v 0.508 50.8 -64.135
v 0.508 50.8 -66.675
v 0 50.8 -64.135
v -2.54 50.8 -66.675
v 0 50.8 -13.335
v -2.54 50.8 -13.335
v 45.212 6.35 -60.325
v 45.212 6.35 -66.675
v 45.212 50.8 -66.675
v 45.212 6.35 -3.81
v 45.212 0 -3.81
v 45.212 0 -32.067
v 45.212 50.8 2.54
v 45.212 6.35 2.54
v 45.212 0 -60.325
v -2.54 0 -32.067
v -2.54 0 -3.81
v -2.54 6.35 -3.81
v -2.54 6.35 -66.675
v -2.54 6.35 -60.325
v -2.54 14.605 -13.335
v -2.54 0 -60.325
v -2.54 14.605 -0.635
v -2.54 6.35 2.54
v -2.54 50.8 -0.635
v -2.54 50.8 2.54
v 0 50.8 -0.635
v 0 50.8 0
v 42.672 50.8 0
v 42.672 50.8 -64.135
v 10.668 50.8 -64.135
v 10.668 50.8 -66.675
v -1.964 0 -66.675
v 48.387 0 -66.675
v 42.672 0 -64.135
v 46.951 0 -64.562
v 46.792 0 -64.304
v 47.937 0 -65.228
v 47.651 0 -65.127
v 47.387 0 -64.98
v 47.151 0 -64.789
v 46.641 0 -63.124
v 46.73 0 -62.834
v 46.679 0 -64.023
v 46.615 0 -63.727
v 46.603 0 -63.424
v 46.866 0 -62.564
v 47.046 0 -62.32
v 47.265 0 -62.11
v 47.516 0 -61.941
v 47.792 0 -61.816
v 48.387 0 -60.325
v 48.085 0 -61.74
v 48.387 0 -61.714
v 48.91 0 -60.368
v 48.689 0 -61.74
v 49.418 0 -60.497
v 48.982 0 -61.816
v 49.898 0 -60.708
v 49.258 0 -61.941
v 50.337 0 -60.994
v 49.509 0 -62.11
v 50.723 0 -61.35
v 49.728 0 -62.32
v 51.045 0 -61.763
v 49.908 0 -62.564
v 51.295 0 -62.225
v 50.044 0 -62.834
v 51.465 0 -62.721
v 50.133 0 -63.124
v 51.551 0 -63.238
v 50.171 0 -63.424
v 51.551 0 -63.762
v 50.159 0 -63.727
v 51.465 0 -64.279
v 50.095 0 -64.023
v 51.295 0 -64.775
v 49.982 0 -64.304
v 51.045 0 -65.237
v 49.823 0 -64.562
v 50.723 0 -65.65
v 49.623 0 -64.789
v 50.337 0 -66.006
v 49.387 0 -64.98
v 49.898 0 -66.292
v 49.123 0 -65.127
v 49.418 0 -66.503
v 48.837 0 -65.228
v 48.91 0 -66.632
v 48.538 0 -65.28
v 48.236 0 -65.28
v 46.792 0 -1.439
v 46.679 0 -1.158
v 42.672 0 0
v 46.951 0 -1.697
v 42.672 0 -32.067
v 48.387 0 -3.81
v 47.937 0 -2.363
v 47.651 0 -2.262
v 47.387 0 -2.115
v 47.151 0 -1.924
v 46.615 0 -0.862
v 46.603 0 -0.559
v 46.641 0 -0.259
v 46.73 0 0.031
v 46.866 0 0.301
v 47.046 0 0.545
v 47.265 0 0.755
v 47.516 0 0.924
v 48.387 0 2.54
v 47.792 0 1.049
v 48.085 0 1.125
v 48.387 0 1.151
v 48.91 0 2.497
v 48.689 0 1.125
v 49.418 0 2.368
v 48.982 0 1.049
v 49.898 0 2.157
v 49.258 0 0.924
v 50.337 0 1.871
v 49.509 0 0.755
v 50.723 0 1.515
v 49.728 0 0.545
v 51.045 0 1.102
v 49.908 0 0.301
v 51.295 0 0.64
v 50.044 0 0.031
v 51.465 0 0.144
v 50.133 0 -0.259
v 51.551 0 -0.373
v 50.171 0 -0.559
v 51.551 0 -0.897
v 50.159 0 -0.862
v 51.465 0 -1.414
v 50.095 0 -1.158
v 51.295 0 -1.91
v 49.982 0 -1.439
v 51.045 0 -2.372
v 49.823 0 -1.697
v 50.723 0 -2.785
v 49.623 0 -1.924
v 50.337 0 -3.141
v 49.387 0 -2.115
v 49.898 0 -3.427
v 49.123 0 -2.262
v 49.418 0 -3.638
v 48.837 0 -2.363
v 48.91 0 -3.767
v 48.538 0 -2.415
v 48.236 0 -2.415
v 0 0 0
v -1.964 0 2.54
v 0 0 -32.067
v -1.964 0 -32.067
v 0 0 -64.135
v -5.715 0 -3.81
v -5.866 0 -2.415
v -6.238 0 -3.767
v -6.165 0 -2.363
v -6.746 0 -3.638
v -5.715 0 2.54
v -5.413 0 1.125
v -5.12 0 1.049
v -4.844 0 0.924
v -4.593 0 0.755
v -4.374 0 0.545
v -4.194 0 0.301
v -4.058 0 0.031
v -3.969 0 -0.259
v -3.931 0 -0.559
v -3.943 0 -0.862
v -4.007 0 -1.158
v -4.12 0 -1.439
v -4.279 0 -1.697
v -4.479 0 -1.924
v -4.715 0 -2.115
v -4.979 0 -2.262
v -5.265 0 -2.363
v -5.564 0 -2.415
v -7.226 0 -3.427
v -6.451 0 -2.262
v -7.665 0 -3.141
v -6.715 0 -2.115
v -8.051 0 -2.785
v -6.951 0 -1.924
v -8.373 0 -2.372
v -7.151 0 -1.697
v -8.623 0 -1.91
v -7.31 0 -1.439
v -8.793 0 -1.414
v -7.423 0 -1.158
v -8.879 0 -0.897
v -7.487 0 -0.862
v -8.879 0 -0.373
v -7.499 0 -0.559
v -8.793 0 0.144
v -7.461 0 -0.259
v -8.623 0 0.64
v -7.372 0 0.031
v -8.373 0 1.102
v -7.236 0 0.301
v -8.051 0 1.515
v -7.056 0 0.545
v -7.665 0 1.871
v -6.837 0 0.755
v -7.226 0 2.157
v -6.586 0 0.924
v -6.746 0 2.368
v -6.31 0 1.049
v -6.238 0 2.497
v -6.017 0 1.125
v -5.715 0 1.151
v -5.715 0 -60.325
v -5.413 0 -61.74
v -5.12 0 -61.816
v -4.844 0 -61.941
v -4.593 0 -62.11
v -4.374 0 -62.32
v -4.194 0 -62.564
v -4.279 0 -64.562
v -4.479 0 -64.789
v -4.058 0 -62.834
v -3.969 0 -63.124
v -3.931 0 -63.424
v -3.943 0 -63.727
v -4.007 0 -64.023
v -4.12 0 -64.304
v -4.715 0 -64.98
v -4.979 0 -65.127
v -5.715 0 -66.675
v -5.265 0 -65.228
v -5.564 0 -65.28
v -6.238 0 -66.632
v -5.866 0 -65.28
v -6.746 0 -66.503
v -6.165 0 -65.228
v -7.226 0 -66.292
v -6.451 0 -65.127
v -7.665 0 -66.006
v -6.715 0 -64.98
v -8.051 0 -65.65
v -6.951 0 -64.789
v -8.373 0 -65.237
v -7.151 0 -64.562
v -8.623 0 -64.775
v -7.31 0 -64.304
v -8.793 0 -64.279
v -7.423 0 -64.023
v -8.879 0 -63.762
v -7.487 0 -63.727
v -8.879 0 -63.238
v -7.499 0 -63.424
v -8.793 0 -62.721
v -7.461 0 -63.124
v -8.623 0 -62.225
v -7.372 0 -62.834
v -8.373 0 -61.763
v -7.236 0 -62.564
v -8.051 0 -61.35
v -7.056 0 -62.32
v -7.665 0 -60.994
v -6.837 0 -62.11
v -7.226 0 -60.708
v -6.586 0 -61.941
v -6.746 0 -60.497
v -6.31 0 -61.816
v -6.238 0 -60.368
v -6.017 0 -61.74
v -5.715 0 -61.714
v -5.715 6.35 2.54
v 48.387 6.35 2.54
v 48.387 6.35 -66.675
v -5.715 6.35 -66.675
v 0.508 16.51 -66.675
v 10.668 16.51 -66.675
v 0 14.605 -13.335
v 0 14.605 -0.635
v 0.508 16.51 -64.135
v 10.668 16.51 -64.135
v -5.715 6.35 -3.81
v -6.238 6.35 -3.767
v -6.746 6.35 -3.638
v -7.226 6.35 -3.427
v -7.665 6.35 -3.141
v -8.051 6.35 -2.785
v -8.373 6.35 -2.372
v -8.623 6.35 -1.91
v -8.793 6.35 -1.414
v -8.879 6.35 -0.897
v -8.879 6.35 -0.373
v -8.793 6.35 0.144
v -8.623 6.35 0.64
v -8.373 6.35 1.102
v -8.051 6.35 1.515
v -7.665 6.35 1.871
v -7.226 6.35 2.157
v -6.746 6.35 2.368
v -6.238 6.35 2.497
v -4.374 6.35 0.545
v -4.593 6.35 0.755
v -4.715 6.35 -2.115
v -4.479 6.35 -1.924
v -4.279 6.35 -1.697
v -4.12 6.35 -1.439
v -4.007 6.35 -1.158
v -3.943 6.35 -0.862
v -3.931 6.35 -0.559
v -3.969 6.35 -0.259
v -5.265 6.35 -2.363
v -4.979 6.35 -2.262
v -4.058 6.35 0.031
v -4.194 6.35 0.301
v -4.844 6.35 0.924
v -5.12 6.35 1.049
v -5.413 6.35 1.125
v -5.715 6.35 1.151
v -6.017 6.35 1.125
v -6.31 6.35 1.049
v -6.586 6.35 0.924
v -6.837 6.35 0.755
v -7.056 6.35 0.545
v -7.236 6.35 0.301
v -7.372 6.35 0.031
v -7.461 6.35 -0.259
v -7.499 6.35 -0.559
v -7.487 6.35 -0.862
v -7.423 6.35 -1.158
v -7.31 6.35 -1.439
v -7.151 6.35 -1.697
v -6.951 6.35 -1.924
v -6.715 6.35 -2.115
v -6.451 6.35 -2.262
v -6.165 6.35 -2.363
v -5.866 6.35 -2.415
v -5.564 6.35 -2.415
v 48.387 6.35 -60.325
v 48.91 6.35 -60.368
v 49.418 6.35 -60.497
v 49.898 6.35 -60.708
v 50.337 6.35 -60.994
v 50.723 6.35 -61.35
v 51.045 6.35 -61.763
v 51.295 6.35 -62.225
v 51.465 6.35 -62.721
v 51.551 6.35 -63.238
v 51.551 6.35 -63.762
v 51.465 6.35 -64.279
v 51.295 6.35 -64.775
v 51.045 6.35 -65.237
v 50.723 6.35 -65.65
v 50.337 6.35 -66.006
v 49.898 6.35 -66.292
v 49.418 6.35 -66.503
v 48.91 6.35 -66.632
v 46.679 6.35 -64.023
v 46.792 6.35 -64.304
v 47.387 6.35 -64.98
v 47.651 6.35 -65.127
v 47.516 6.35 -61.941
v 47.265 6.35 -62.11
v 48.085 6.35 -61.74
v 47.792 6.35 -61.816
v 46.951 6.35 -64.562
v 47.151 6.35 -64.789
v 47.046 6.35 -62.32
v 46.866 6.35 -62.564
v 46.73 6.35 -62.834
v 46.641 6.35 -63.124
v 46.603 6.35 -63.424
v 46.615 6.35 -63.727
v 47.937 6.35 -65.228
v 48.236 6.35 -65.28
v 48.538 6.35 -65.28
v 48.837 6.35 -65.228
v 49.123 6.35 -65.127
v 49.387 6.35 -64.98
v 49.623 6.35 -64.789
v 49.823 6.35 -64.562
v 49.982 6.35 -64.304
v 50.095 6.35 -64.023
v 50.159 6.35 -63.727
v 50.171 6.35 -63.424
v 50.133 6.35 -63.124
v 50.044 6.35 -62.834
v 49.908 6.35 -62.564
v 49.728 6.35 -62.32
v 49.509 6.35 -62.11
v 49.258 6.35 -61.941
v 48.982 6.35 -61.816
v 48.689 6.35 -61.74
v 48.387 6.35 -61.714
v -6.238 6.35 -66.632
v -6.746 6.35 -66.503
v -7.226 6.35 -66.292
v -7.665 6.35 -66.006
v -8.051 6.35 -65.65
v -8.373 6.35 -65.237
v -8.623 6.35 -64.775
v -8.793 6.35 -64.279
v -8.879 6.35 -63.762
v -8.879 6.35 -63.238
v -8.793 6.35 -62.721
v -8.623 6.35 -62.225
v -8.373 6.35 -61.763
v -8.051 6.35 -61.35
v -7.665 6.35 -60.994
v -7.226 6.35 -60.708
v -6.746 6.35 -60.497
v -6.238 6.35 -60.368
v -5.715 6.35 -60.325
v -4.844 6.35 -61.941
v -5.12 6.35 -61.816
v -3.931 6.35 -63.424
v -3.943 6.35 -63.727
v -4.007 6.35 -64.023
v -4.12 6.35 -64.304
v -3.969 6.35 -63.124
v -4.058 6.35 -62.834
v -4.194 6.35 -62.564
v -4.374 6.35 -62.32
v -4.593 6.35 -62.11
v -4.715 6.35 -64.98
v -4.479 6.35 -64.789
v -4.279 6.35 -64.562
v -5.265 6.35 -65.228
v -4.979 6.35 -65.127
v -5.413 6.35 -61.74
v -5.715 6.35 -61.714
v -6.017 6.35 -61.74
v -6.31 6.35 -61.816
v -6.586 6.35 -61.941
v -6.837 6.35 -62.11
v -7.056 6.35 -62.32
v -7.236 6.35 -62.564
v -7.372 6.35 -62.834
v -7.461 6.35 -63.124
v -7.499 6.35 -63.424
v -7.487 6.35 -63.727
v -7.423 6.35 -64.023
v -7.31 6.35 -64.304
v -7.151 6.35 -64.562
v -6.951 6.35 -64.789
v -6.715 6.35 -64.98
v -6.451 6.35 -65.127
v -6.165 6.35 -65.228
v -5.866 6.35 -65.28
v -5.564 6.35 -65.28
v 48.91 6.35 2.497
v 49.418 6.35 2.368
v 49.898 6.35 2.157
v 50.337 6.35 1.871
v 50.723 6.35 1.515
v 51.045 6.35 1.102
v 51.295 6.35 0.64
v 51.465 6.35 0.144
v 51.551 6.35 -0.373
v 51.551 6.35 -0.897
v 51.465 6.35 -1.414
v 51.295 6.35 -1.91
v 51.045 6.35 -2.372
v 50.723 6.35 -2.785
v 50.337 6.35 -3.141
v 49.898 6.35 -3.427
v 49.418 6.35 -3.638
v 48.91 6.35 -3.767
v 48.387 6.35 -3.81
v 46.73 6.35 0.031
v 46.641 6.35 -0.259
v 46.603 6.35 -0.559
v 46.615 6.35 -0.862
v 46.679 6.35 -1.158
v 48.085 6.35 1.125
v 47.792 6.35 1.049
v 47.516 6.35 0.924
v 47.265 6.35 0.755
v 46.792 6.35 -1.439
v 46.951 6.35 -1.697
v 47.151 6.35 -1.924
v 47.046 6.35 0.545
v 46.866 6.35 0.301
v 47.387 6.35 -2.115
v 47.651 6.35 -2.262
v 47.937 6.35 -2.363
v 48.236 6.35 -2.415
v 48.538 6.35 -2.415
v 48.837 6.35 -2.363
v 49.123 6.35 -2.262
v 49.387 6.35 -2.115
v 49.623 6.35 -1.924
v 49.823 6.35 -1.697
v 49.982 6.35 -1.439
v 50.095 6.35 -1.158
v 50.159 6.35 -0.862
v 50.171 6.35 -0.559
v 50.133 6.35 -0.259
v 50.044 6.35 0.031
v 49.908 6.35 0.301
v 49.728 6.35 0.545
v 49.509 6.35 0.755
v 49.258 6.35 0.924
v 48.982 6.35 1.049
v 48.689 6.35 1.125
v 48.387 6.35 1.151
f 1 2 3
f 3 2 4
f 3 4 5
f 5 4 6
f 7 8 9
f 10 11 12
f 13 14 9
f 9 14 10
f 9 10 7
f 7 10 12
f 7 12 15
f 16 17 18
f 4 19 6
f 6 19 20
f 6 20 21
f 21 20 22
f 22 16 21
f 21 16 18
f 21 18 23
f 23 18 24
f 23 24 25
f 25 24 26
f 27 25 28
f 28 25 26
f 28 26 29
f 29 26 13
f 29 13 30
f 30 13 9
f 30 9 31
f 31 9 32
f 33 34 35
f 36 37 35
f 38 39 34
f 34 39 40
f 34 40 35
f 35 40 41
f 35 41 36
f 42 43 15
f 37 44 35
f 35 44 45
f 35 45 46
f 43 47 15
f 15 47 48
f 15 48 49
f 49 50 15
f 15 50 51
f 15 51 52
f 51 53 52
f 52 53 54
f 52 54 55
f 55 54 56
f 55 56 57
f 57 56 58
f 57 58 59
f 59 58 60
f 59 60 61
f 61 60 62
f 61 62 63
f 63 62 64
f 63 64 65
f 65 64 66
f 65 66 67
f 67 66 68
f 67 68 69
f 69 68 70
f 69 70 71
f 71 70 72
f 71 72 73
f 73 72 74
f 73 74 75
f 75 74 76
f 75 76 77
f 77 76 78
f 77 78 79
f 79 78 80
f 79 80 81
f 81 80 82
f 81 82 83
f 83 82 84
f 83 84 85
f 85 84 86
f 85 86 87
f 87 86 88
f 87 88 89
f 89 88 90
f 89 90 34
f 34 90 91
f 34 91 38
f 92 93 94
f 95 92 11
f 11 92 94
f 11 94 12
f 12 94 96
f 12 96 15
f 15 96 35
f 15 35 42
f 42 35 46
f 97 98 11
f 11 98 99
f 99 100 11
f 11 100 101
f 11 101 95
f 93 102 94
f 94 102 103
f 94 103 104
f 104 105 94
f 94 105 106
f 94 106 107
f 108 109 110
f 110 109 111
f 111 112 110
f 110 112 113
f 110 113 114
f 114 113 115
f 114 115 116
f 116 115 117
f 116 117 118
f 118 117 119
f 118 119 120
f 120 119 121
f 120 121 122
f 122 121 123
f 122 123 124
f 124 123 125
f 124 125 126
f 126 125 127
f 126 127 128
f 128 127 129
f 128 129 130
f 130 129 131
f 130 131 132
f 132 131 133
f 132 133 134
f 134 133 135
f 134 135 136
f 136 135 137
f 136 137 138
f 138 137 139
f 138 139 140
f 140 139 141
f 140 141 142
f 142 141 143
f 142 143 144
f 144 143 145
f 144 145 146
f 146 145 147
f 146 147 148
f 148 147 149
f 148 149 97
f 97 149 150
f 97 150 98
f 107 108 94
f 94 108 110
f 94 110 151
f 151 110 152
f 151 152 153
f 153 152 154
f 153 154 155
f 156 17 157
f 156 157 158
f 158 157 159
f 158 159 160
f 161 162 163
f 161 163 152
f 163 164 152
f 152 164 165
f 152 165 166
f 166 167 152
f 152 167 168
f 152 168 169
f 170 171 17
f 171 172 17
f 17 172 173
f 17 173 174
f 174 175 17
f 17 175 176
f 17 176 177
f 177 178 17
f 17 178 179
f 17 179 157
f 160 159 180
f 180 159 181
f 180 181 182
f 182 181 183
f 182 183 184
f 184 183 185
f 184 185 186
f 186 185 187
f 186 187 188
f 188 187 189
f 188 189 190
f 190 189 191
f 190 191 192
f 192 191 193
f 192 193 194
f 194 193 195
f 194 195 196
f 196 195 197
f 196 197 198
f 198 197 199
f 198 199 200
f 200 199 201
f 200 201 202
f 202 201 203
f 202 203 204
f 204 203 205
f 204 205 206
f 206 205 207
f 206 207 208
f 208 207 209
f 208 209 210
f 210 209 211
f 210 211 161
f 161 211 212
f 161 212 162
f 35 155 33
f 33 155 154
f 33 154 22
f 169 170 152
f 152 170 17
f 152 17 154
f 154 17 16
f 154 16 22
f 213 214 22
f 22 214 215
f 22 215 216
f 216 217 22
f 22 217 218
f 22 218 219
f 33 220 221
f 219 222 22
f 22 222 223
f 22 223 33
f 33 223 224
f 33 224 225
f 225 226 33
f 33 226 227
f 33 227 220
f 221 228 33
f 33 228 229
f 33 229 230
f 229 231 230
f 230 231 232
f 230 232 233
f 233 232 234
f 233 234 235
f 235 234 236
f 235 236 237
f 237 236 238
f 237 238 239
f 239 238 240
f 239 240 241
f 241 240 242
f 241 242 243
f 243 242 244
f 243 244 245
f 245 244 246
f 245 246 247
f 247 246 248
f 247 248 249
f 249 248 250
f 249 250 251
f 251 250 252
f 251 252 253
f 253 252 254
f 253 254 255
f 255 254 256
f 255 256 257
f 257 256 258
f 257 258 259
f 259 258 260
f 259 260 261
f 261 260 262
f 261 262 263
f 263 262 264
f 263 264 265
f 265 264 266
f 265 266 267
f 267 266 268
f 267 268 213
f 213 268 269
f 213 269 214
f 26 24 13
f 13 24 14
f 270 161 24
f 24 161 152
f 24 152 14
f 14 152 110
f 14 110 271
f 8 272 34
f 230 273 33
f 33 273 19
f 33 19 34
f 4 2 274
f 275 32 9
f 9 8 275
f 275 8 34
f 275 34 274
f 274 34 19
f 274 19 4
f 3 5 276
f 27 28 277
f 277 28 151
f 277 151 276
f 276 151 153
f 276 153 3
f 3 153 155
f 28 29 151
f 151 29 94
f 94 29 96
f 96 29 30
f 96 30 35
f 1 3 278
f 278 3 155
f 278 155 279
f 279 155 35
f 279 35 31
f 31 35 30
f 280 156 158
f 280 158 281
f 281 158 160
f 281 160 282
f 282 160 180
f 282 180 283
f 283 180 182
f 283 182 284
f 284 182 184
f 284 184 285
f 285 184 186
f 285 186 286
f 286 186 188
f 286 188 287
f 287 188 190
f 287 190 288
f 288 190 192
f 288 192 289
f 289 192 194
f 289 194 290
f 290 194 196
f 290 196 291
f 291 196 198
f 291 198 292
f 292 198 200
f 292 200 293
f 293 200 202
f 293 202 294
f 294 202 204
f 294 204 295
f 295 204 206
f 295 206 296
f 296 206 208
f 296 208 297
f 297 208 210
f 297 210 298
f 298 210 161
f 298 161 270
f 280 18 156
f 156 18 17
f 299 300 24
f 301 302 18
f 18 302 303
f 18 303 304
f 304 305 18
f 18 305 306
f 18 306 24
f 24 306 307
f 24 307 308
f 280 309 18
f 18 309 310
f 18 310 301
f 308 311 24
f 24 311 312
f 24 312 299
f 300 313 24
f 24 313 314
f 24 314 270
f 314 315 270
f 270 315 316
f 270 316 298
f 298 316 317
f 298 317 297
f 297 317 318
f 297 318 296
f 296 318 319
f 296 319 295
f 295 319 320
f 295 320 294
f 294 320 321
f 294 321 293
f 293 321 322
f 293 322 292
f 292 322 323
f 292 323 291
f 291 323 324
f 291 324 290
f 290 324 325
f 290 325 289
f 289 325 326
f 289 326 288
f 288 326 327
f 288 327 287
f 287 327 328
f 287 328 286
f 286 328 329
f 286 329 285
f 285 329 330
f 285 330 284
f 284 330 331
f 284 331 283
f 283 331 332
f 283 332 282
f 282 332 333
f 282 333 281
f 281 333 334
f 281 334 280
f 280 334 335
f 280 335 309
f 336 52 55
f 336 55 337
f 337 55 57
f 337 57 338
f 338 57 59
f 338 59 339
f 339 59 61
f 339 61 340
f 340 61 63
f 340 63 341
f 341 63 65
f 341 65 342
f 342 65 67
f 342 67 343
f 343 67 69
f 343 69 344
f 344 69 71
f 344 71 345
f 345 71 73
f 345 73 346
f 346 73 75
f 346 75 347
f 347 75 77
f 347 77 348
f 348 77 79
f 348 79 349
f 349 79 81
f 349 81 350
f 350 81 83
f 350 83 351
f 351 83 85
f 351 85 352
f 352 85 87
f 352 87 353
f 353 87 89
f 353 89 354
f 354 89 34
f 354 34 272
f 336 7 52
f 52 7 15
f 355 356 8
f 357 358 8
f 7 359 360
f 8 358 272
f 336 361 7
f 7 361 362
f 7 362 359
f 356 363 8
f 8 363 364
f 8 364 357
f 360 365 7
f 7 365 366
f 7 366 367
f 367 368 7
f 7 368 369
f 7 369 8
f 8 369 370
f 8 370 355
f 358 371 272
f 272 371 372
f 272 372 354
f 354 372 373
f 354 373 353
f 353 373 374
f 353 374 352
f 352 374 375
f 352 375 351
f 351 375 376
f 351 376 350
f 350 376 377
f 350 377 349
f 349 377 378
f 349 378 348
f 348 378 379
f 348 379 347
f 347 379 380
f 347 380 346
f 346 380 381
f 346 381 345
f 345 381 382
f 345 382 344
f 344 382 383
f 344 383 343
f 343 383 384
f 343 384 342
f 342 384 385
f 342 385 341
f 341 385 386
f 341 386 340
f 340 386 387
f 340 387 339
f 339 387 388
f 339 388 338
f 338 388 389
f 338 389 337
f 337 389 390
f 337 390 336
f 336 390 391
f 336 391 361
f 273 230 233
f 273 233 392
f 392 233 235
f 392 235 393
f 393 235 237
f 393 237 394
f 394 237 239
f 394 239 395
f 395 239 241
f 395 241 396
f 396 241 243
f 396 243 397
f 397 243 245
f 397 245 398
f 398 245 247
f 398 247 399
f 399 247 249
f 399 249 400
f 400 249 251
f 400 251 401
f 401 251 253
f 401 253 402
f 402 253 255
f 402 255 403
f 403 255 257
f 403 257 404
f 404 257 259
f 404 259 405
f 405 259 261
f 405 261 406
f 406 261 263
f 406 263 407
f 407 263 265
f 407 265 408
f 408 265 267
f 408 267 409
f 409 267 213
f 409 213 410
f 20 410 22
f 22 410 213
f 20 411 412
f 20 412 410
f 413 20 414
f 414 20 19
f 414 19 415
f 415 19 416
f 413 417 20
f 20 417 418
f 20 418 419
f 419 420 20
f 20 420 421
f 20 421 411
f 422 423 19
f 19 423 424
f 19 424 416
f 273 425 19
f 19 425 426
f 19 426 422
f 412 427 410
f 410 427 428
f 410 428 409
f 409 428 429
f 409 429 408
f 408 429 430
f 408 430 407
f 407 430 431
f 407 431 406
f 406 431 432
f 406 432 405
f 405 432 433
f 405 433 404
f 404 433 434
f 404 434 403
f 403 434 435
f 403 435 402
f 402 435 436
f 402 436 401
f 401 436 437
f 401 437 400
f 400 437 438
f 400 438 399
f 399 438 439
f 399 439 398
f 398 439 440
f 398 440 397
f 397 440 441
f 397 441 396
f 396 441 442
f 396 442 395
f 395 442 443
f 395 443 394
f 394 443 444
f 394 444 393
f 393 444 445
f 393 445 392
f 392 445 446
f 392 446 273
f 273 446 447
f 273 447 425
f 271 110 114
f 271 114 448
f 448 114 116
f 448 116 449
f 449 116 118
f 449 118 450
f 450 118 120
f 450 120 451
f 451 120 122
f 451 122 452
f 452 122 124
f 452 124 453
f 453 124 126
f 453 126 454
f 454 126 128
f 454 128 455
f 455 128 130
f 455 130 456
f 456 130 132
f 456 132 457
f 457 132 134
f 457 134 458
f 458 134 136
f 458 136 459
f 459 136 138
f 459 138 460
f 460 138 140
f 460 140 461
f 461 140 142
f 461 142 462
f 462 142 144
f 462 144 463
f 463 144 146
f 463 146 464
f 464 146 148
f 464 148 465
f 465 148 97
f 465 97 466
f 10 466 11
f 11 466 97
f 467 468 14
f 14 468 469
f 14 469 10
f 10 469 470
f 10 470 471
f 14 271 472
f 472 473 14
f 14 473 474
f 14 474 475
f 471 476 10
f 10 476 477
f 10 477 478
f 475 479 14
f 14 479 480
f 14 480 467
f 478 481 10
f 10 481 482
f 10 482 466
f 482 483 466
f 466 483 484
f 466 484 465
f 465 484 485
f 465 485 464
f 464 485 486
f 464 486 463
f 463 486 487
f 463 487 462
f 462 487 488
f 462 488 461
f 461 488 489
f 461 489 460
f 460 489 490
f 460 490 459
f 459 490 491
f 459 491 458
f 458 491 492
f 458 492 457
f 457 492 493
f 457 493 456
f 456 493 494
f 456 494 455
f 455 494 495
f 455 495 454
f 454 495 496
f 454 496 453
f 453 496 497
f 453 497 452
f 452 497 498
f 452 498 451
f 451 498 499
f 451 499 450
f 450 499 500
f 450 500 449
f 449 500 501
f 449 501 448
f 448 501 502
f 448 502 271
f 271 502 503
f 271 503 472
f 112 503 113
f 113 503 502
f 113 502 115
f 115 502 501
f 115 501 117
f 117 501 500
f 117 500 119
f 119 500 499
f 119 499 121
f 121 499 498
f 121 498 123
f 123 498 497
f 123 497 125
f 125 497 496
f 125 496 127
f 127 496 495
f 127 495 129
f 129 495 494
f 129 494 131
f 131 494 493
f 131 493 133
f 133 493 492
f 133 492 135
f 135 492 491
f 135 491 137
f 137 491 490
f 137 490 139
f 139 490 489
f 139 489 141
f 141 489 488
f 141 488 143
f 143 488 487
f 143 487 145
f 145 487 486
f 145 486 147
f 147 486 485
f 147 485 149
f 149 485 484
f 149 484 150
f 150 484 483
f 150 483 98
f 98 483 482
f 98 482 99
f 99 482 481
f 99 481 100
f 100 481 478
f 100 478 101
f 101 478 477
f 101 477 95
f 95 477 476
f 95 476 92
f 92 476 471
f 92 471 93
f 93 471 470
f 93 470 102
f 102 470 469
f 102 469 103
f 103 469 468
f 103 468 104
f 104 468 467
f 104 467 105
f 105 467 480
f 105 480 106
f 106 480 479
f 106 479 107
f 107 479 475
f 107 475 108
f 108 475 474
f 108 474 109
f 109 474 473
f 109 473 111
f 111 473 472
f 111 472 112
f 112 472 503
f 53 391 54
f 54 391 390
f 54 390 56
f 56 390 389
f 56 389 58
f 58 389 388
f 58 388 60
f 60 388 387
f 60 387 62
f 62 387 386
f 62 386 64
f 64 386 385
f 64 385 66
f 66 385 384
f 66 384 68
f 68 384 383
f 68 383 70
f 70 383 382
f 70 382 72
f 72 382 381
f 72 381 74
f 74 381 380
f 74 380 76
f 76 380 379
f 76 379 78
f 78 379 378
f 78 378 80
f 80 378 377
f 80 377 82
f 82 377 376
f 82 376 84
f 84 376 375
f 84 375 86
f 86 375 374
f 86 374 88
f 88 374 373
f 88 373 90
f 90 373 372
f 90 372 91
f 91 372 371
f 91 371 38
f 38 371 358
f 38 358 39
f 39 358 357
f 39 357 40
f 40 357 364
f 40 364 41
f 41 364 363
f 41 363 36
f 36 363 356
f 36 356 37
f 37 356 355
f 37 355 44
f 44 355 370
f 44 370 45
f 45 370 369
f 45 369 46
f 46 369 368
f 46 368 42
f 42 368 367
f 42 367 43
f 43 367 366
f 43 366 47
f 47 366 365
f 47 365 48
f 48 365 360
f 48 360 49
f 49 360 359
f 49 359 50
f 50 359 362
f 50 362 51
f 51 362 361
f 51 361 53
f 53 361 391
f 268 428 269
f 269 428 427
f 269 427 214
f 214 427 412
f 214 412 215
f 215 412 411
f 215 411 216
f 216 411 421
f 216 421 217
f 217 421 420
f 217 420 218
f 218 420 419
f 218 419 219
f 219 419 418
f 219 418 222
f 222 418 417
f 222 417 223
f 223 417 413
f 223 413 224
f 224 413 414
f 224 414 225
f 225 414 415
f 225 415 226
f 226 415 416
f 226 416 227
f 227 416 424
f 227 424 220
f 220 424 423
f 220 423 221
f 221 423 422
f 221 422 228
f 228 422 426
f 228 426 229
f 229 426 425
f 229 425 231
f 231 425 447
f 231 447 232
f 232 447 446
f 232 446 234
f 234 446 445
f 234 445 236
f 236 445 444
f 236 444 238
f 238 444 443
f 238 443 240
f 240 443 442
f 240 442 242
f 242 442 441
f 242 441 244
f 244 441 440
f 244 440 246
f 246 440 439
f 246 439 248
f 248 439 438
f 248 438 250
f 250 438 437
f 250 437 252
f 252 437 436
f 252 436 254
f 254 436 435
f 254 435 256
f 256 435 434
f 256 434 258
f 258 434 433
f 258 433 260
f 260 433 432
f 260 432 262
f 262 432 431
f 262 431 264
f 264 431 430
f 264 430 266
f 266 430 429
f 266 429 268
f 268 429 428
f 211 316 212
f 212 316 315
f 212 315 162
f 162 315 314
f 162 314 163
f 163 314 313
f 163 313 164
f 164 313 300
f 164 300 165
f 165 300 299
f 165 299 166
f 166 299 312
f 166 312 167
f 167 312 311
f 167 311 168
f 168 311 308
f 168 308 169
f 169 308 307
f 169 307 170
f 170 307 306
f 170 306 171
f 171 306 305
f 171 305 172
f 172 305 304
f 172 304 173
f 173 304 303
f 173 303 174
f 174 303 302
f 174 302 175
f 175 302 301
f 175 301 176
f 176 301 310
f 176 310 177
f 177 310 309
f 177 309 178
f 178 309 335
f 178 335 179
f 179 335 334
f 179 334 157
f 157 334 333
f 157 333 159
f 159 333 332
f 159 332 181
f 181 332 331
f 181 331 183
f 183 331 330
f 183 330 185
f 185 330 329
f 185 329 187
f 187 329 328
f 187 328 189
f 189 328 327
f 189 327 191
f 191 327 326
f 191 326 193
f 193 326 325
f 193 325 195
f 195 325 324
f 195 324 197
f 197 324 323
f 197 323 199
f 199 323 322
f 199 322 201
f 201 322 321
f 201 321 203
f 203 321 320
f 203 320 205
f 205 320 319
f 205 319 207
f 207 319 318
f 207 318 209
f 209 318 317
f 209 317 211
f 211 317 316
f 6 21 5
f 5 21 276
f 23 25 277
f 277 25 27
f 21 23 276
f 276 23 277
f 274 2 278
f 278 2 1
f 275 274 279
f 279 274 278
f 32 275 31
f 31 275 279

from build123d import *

# Parameters (mm, degrees)
SKETCH1_W                       = 47.752
SKETCH1_H                       = 69.215
SKETCH1_W_2                     = 42.672
SKETCH1_H_2                     = 64.135
BOSS_EXTRUDE1_DEPTH             = 50.8
BOSS_EXTRUDE2_DEPTH             = 6.35
F_9_64_0_14063_DIAMETER_HOLE1_D = 3.572002
SKETCH11_W                      = 12.7
SKETCH11_H                      = 36.195
CUT_EXTRUDE1_DEPTH              = 6.35
SKETCH12_W                      = 10.16
SKETCH12_H                      = 34.29
CUT_EXTRUDE2_DEPTH              = 6.35


with BuildPart() as part:
    # Sketch1 → Boss-Extrude1 (new body)
    with BuildSketch(Plane(origin=(0, 0, 0), x_dir=(1, 0, 0), z_dir=(0, 1, 0))):
        with Locations((21.336, 32.0675)):
            Rectangle(SKETCH1_W, SKETCH1_H)
        with Locations((21.336, 32.0675)):
            Rectangle(SKETCH1_W_2, SKETCH1_H_2, mode=Mode.SUBTRACT)
    extrude(amount=BOSS_EXTRUDE1_DEPTH)

    # Sketch2 → Boss-Extrude2 (add)
    with BuildSketch(Plane.XZ):
        with BuildLine():
            Line((-5.715, -3.81), (-2.54, -3.81))
            Line((-2.54, -3.81), (-2.54, 2.54))
            Line((-2.54, 2.54), (-5.715, 2.54))
            ThreePointArc((-5.715, 2.54), (-8.89, -0.635), (-5.715, -3.81))
        make_face()
        with BuildLine():
            Line((48.387, -60.325), (45.212, -60.325))
            Line((45.212, -60.325), (45.212, -66.675))
            Line((45.212, -66.675), (48.387, -66.675))
            ThreePointArc((48.387, -66.675), (51.562, -63.5), (48.387, -60.325))
        make_face()
        with BuildLine():
            Line((-2.54, -66.675), (-5.715, -66.675))
            ThreePointArc((-5.715, -66.675), (-8.89, -63.5), (-5.715, -60.325))
            Line((-5.715, -60.325), (-2.54, -60.325))
            Line((-2.54, -60.325), (-2.54, -66.675))
        make_face()
        with BuildLine():
            Line((45.212, 2.54), (48.387, 2.54))
            ThreePointArc((48.387, 2.54), (51.562, -0.635), (48.387, -3.81))
            Line((48.387, -3.81), (45.212, -3.81))
            Line((45.212, -3.81), (45.212, 2.54))
        make_face()
    extrude(amount=-BOSS_EXTRUDE2_DEPTH)

    # 9/64 (0.14063) Diameter Hole1 (through all)
    with Locations(Plane(origin=(0, 6.35, 0), x_dir=(1, 0, 0), z_dir=(0, 1, 0))):
        with Locations((-5.715, 0.635), (-5.715, 63.5), (48.387, 63.5), (48.387, 0.635)):
            Hole(F_9_64_0_14063_DIAMETER_HOLE1_D / 2)

    # Sketch11 → Cut-Extrude1 (cut)
    with BuildSketch(Plane.ZY.offset(2.54)):
        with Locations((-6.985, 32.7025)):
            Rectangle(SKETCH11_W, SKETCH11_H)
    extrude(amount=-CUT_EXTRUDE1_DEPTH, mode=Mode.SUBTRACT)

    # Sketch12 → Cut-Extrude2 (cut)
    with BuildSketch(Plane(origin=(0, 0, -66.675), x_dir=(-1, 0, 0), z_dir=(0, 0, -1))):
        with Locations((-5.588, 33.655)):
            Rectangle(SKETCH12_W, SKETCH12_H)
    extrude(amount=-CUT_EXTRUDE2_DEPTH, mode=Mode.SUBTRACT)


solid = part.part
